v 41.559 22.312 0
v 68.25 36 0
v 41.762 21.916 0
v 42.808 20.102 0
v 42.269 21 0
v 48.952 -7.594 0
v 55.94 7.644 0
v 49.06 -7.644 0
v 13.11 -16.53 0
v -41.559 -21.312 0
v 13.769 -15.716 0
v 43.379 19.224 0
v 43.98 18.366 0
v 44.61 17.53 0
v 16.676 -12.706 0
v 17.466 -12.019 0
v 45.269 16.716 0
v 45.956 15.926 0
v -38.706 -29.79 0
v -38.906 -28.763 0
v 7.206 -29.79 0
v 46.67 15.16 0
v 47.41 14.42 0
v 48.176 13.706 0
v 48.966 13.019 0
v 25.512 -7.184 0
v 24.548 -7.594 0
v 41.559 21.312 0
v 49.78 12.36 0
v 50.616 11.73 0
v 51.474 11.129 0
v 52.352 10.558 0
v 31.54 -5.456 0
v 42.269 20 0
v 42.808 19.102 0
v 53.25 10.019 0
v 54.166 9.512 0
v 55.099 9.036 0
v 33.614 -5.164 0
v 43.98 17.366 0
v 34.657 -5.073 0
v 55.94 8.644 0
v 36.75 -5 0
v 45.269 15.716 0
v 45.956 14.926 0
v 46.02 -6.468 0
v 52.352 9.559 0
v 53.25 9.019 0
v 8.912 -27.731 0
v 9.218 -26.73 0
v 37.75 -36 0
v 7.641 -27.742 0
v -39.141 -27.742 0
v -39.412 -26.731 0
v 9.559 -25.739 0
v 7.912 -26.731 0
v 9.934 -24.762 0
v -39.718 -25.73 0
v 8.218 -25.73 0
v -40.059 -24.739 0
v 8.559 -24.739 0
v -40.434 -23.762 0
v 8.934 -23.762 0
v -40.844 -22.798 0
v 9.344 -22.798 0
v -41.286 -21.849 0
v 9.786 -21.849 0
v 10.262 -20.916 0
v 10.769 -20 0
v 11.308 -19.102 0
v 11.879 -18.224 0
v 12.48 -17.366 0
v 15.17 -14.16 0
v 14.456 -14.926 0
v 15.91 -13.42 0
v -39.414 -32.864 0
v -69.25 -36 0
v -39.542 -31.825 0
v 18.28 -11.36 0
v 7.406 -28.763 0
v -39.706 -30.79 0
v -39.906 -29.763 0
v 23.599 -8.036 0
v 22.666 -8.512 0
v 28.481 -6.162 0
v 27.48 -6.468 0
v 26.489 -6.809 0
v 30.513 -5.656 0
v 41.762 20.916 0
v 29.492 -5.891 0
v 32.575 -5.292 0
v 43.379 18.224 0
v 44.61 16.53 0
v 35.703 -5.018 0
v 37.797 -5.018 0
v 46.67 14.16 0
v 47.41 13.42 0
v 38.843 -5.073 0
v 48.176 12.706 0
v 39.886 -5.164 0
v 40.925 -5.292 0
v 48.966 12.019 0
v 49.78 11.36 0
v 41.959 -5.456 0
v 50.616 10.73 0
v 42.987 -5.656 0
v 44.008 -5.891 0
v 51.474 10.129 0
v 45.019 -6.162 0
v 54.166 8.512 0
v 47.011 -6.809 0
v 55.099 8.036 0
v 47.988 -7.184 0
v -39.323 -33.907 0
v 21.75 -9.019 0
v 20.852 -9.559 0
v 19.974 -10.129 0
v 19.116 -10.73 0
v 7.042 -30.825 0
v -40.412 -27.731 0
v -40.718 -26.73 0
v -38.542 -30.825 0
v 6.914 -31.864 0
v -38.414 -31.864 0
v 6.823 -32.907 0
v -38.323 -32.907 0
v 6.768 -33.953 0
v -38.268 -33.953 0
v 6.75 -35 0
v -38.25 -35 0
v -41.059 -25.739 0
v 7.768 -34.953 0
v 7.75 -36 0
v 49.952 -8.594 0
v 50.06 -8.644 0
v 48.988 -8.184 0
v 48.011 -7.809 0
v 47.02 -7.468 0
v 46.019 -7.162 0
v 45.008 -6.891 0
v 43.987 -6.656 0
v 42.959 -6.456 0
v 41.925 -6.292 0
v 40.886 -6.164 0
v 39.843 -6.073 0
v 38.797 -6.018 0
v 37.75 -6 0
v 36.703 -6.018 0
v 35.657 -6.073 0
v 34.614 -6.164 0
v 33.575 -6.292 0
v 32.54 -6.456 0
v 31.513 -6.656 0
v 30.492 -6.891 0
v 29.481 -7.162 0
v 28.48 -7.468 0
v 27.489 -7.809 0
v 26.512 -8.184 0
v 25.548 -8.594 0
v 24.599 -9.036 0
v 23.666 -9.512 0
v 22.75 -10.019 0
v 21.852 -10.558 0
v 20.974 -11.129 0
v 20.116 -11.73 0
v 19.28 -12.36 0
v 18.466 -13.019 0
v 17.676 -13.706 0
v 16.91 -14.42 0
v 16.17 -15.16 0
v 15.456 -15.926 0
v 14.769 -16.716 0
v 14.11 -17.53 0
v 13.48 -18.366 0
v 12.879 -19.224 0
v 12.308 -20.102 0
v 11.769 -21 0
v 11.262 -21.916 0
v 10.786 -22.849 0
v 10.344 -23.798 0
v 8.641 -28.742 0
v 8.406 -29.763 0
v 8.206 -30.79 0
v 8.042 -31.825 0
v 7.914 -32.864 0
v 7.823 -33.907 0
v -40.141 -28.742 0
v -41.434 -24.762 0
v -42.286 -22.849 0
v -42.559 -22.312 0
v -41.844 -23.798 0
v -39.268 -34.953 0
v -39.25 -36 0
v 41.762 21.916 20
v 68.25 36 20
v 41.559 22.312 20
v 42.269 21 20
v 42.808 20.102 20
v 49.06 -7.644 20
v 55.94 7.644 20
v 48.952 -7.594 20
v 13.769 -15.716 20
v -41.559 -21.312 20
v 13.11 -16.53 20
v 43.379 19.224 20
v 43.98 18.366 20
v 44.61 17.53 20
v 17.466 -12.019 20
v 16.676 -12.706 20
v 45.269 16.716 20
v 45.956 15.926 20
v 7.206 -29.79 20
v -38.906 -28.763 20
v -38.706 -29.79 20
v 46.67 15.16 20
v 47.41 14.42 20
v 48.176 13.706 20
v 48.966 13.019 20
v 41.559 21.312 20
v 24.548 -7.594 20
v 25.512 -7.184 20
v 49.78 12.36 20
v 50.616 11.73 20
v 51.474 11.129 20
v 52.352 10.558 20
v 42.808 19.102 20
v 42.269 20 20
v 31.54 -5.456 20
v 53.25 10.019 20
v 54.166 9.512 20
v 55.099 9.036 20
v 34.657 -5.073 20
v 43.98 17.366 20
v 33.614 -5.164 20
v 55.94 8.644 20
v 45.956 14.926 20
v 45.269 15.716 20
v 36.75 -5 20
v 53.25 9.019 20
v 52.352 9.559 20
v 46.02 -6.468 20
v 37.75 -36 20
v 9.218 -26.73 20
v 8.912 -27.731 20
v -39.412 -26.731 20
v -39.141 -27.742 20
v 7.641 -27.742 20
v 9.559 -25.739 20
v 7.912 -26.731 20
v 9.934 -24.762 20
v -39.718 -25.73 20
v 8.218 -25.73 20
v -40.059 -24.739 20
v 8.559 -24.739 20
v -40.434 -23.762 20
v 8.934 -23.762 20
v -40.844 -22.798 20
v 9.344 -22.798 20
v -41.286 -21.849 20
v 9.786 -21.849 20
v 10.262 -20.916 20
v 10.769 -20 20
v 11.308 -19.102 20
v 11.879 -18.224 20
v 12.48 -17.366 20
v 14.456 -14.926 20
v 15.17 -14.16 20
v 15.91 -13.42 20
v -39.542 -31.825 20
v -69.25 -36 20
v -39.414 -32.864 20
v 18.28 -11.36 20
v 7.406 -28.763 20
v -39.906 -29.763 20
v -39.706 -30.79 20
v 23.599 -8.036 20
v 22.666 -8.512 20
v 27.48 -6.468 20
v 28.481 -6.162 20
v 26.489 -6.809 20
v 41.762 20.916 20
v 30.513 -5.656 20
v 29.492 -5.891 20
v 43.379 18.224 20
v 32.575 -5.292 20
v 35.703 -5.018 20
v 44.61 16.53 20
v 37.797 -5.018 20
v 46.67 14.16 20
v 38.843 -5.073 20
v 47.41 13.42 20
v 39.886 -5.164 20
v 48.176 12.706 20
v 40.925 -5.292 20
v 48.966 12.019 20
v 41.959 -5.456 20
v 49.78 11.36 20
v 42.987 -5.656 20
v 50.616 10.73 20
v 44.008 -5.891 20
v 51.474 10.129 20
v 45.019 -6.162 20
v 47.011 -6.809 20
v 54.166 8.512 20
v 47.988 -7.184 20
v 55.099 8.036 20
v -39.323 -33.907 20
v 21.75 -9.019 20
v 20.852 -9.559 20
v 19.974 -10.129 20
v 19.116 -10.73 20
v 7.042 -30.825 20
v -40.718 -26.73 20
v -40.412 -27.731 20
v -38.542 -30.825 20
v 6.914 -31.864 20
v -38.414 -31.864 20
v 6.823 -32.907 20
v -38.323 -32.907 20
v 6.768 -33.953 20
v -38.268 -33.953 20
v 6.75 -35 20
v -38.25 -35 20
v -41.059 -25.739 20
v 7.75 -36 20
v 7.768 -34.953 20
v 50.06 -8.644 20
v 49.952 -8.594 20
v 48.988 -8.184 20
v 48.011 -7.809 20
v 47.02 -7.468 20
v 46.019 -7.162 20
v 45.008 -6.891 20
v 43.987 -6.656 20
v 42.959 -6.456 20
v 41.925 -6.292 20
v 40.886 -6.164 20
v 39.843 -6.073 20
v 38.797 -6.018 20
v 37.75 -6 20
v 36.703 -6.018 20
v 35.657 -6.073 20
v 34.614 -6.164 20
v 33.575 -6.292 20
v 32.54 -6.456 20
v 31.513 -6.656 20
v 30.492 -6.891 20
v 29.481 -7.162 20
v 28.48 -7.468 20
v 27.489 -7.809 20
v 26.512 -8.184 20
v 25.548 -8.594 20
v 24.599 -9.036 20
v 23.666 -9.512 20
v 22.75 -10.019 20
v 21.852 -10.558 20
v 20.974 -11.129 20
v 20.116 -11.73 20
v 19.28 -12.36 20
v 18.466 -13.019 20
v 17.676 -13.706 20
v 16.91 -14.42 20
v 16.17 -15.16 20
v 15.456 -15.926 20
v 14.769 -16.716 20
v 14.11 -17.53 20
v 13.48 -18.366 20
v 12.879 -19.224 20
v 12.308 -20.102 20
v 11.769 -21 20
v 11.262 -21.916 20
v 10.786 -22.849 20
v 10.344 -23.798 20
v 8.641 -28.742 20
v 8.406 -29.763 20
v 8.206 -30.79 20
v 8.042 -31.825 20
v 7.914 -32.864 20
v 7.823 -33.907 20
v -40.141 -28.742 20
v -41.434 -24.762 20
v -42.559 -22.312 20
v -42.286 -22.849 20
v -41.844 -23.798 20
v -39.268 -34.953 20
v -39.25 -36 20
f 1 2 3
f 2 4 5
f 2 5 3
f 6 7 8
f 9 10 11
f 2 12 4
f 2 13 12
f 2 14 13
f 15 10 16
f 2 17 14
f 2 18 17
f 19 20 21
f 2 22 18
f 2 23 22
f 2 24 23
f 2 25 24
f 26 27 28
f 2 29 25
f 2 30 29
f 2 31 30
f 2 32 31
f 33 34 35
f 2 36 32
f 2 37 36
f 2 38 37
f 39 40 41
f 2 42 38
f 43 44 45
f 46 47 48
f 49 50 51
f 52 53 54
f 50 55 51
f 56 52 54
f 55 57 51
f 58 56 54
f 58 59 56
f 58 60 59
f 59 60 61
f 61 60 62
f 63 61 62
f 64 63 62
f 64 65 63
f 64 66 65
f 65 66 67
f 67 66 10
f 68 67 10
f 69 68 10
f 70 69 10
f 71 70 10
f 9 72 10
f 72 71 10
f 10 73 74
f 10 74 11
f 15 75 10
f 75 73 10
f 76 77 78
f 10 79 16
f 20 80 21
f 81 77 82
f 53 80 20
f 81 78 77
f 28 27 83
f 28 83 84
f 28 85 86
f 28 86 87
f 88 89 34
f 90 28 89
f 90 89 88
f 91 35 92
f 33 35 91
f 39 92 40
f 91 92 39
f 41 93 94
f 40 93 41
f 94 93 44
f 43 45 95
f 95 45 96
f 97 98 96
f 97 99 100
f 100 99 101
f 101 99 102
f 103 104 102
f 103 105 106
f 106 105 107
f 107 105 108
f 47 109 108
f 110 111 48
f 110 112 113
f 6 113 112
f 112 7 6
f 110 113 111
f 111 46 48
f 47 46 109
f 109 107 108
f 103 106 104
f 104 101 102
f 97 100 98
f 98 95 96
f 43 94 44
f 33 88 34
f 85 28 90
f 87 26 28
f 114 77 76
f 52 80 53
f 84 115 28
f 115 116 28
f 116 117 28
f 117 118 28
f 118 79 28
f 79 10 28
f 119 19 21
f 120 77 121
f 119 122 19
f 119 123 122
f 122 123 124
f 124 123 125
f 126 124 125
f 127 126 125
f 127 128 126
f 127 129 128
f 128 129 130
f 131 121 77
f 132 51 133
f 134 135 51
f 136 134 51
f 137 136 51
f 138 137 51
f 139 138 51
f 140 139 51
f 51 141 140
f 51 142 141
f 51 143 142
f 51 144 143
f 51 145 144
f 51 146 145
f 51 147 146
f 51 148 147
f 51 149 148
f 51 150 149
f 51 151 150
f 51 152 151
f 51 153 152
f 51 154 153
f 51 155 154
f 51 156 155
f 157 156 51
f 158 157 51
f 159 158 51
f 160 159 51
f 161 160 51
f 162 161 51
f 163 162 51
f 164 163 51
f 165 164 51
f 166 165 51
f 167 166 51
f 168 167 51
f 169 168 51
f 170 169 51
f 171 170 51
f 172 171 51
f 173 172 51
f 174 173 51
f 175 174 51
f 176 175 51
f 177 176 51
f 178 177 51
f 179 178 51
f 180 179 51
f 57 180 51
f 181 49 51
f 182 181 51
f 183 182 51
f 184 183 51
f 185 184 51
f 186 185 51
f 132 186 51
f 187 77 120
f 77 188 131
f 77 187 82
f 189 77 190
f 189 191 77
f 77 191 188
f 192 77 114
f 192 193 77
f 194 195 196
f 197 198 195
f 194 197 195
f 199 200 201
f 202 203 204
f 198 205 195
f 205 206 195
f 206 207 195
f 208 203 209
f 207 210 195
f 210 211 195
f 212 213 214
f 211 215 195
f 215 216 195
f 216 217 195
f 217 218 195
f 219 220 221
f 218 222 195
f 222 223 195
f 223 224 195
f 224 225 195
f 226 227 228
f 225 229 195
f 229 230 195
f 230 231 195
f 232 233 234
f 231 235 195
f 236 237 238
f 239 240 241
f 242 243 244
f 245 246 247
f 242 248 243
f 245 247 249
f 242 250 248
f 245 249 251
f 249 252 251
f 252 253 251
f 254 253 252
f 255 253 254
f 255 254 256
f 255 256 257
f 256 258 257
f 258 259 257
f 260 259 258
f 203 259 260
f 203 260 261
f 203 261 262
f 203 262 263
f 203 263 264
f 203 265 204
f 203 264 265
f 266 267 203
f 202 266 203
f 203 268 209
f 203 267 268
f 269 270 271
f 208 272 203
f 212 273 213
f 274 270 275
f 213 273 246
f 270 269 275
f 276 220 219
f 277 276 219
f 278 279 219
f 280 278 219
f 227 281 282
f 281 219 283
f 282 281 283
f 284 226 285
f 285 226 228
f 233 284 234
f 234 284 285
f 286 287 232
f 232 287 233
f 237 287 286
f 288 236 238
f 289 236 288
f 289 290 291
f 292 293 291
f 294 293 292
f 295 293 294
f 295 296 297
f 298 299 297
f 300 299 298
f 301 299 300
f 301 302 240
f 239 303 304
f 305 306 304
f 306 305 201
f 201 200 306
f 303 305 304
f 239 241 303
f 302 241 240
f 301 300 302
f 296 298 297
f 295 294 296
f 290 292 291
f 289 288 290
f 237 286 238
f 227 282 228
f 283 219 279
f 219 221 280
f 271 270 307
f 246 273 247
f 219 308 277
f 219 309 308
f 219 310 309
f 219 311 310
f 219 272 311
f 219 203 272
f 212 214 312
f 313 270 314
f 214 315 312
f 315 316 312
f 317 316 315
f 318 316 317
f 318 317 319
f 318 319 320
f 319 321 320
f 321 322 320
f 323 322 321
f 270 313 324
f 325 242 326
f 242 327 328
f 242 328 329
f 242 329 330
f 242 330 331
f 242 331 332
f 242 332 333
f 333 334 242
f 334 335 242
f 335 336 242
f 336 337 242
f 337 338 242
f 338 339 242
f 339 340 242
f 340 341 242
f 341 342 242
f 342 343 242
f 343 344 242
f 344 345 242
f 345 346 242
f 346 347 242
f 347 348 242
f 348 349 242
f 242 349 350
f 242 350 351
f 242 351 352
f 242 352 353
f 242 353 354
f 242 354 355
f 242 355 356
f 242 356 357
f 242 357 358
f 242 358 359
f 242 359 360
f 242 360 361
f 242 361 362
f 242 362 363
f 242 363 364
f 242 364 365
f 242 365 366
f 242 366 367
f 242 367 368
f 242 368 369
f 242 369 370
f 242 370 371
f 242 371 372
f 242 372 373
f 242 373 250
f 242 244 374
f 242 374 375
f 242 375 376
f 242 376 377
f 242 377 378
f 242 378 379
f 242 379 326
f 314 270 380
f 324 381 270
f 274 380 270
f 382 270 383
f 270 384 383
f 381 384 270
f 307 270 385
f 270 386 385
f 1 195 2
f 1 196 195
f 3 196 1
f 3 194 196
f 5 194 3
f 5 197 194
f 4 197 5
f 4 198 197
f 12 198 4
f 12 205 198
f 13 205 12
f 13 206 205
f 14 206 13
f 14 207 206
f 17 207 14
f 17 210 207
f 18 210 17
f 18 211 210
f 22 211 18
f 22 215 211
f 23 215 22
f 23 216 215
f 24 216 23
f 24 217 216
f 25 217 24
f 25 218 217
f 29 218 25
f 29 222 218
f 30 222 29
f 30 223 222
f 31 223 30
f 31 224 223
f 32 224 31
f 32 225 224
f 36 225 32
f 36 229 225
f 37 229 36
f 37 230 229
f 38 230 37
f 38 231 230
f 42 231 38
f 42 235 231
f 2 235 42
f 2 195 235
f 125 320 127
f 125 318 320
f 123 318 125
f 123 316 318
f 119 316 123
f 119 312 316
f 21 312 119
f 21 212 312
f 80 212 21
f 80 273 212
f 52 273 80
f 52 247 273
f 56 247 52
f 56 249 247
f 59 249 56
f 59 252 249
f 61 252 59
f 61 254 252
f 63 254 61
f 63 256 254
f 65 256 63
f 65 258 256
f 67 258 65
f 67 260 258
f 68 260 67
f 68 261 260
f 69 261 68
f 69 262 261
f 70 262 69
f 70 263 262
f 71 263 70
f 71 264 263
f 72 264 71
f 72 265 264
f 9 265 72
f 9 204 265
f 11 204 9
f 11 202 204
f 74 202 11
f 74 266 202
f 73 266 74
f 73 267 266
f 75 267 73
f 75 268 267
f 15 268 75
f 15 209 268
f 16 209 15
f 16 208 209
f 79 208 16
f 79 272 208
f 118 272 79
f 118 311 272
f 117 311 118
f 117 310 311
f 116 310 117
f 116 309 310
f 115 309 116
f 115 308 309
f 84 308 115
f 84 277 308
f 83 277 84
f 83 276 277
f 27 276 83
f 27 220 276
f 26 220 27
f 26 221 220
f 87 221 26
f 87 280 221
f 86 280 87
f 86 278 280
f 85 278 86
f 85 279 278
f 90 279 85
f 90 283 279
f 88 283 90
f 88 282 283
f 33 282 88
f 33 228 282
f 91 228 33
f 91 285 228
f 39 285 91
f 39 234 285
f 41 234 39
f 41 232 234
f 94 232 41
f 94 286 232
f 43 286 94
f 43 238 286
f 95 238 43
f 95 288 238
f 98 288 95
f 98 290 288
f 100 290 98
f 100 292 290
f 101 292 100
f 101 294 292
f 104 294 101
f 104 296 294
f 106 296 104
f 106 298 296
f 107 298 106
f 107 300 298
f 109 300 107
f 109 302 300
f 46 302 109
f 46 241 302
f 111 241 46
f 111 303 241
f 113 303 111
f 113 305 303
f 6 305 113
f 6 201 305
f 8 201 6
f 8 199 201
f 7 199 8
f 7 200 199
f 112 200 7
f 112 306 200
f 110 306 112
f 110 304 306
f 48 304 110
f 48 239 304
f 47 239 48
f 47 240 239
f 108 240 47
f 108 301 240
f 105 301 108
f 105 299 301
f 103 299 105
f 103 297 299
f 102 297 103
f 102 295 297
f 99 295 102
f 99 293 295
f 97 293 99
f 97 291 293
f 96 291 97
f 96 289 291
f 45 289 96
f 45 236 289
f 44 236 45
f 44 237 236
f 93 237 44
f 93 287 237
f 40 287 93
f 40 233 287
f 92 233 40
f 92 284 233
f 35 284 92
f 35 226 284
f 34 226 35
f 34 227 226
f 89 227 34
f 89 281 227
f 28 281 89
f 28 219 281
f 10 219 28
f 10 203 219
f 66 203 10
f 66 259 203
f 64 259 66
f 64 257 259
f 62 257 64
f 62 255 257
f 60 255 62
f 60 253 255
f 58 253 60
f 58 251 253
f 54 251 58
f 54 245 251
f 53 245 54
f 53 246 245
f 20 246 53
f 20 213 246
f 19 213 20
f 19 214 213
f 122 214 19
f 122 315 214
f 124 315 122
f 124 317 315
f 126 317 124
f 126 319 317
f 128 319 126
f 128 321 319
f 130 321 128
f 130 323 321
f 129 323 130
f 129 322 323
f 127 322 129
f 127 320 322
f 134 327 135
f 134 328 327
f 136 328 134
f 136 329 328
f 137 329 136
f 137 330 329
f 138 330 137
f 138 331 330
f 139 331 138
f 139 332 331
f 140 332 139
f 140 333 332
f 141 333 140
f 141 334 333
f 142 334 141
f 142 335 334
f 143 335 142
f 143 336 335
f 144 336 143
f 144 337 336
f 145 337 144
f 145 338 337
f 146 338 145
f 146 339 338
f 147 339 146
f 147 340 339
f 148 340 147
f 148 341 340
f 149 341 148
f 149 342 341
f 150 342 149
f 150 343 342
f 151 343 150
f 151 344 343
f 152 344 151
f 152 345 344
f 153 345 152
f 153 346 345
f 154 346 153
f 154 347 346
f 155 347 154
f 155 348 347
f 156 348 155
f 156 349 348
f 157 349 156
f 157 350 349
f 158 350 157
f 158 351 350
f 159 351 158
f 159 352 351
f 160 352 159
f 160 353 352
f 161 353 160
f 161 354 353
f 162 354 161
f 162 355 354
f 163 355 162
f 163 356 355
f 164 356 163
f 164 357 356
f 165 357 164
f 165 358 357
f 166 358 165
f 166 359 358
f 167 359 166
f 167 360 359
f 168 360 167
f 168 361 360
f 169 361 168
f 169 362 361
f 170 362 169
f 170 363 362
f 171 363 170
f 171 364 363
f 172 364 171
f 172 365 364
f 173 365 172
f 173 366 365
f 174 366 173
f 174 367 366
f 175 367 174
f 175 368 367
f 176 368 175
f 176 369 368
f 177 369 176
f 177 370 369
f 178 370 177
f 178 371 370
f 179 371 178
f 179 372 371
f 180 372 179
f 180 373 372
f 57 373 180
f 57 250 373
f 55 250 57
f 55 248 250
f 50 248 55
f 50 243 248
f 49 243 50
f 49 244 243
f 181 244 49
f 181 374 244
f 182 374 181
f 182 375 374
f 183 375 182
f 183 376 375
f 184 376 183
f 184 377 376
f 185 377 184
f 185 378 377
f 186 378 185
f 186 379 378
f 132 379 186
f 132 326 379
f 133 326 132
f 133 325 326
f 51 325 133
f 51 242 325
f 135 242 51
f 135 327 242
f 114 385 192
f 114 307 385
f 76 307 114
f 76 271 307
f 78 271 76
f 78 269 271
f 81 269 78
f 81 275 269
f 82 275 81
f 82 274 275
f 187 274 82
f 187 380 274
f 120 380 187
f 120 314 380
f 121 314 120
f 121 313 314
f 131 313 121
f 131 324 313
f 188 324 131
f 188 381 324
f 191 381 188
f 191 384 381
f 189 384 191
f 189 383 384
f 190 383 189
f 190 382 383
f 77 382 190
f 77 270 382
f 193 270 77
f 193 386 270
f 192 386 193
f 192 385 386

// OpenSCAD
// file Triangle Angles.scad
// Demonstrates that the angles of a triangle sum to 180 degrees
// (c) 2020 Rich Cameron, CC-BY
// measurements in mm

base = 105;
height = 70;
thickness = 20;

top = base * 1.3;

r = 30;

$fs = .1;
$fa = 2;

corners = [[0, 0], [top, height], [base, 0]] - [for(i = [0:2]) [top / 2, height / 2]];

linear_extrude(thickness) {
	difference() {
		polygon(corners);
		for(c = corners) translate(c) circle(r);
	}
	for(i = [0:2]) translate([i - 1, (i - 1) ? -1 : 1, 0]) intersection() {
		polygon(corners);
		translate(corners[i]) circle(r);
	}
}
